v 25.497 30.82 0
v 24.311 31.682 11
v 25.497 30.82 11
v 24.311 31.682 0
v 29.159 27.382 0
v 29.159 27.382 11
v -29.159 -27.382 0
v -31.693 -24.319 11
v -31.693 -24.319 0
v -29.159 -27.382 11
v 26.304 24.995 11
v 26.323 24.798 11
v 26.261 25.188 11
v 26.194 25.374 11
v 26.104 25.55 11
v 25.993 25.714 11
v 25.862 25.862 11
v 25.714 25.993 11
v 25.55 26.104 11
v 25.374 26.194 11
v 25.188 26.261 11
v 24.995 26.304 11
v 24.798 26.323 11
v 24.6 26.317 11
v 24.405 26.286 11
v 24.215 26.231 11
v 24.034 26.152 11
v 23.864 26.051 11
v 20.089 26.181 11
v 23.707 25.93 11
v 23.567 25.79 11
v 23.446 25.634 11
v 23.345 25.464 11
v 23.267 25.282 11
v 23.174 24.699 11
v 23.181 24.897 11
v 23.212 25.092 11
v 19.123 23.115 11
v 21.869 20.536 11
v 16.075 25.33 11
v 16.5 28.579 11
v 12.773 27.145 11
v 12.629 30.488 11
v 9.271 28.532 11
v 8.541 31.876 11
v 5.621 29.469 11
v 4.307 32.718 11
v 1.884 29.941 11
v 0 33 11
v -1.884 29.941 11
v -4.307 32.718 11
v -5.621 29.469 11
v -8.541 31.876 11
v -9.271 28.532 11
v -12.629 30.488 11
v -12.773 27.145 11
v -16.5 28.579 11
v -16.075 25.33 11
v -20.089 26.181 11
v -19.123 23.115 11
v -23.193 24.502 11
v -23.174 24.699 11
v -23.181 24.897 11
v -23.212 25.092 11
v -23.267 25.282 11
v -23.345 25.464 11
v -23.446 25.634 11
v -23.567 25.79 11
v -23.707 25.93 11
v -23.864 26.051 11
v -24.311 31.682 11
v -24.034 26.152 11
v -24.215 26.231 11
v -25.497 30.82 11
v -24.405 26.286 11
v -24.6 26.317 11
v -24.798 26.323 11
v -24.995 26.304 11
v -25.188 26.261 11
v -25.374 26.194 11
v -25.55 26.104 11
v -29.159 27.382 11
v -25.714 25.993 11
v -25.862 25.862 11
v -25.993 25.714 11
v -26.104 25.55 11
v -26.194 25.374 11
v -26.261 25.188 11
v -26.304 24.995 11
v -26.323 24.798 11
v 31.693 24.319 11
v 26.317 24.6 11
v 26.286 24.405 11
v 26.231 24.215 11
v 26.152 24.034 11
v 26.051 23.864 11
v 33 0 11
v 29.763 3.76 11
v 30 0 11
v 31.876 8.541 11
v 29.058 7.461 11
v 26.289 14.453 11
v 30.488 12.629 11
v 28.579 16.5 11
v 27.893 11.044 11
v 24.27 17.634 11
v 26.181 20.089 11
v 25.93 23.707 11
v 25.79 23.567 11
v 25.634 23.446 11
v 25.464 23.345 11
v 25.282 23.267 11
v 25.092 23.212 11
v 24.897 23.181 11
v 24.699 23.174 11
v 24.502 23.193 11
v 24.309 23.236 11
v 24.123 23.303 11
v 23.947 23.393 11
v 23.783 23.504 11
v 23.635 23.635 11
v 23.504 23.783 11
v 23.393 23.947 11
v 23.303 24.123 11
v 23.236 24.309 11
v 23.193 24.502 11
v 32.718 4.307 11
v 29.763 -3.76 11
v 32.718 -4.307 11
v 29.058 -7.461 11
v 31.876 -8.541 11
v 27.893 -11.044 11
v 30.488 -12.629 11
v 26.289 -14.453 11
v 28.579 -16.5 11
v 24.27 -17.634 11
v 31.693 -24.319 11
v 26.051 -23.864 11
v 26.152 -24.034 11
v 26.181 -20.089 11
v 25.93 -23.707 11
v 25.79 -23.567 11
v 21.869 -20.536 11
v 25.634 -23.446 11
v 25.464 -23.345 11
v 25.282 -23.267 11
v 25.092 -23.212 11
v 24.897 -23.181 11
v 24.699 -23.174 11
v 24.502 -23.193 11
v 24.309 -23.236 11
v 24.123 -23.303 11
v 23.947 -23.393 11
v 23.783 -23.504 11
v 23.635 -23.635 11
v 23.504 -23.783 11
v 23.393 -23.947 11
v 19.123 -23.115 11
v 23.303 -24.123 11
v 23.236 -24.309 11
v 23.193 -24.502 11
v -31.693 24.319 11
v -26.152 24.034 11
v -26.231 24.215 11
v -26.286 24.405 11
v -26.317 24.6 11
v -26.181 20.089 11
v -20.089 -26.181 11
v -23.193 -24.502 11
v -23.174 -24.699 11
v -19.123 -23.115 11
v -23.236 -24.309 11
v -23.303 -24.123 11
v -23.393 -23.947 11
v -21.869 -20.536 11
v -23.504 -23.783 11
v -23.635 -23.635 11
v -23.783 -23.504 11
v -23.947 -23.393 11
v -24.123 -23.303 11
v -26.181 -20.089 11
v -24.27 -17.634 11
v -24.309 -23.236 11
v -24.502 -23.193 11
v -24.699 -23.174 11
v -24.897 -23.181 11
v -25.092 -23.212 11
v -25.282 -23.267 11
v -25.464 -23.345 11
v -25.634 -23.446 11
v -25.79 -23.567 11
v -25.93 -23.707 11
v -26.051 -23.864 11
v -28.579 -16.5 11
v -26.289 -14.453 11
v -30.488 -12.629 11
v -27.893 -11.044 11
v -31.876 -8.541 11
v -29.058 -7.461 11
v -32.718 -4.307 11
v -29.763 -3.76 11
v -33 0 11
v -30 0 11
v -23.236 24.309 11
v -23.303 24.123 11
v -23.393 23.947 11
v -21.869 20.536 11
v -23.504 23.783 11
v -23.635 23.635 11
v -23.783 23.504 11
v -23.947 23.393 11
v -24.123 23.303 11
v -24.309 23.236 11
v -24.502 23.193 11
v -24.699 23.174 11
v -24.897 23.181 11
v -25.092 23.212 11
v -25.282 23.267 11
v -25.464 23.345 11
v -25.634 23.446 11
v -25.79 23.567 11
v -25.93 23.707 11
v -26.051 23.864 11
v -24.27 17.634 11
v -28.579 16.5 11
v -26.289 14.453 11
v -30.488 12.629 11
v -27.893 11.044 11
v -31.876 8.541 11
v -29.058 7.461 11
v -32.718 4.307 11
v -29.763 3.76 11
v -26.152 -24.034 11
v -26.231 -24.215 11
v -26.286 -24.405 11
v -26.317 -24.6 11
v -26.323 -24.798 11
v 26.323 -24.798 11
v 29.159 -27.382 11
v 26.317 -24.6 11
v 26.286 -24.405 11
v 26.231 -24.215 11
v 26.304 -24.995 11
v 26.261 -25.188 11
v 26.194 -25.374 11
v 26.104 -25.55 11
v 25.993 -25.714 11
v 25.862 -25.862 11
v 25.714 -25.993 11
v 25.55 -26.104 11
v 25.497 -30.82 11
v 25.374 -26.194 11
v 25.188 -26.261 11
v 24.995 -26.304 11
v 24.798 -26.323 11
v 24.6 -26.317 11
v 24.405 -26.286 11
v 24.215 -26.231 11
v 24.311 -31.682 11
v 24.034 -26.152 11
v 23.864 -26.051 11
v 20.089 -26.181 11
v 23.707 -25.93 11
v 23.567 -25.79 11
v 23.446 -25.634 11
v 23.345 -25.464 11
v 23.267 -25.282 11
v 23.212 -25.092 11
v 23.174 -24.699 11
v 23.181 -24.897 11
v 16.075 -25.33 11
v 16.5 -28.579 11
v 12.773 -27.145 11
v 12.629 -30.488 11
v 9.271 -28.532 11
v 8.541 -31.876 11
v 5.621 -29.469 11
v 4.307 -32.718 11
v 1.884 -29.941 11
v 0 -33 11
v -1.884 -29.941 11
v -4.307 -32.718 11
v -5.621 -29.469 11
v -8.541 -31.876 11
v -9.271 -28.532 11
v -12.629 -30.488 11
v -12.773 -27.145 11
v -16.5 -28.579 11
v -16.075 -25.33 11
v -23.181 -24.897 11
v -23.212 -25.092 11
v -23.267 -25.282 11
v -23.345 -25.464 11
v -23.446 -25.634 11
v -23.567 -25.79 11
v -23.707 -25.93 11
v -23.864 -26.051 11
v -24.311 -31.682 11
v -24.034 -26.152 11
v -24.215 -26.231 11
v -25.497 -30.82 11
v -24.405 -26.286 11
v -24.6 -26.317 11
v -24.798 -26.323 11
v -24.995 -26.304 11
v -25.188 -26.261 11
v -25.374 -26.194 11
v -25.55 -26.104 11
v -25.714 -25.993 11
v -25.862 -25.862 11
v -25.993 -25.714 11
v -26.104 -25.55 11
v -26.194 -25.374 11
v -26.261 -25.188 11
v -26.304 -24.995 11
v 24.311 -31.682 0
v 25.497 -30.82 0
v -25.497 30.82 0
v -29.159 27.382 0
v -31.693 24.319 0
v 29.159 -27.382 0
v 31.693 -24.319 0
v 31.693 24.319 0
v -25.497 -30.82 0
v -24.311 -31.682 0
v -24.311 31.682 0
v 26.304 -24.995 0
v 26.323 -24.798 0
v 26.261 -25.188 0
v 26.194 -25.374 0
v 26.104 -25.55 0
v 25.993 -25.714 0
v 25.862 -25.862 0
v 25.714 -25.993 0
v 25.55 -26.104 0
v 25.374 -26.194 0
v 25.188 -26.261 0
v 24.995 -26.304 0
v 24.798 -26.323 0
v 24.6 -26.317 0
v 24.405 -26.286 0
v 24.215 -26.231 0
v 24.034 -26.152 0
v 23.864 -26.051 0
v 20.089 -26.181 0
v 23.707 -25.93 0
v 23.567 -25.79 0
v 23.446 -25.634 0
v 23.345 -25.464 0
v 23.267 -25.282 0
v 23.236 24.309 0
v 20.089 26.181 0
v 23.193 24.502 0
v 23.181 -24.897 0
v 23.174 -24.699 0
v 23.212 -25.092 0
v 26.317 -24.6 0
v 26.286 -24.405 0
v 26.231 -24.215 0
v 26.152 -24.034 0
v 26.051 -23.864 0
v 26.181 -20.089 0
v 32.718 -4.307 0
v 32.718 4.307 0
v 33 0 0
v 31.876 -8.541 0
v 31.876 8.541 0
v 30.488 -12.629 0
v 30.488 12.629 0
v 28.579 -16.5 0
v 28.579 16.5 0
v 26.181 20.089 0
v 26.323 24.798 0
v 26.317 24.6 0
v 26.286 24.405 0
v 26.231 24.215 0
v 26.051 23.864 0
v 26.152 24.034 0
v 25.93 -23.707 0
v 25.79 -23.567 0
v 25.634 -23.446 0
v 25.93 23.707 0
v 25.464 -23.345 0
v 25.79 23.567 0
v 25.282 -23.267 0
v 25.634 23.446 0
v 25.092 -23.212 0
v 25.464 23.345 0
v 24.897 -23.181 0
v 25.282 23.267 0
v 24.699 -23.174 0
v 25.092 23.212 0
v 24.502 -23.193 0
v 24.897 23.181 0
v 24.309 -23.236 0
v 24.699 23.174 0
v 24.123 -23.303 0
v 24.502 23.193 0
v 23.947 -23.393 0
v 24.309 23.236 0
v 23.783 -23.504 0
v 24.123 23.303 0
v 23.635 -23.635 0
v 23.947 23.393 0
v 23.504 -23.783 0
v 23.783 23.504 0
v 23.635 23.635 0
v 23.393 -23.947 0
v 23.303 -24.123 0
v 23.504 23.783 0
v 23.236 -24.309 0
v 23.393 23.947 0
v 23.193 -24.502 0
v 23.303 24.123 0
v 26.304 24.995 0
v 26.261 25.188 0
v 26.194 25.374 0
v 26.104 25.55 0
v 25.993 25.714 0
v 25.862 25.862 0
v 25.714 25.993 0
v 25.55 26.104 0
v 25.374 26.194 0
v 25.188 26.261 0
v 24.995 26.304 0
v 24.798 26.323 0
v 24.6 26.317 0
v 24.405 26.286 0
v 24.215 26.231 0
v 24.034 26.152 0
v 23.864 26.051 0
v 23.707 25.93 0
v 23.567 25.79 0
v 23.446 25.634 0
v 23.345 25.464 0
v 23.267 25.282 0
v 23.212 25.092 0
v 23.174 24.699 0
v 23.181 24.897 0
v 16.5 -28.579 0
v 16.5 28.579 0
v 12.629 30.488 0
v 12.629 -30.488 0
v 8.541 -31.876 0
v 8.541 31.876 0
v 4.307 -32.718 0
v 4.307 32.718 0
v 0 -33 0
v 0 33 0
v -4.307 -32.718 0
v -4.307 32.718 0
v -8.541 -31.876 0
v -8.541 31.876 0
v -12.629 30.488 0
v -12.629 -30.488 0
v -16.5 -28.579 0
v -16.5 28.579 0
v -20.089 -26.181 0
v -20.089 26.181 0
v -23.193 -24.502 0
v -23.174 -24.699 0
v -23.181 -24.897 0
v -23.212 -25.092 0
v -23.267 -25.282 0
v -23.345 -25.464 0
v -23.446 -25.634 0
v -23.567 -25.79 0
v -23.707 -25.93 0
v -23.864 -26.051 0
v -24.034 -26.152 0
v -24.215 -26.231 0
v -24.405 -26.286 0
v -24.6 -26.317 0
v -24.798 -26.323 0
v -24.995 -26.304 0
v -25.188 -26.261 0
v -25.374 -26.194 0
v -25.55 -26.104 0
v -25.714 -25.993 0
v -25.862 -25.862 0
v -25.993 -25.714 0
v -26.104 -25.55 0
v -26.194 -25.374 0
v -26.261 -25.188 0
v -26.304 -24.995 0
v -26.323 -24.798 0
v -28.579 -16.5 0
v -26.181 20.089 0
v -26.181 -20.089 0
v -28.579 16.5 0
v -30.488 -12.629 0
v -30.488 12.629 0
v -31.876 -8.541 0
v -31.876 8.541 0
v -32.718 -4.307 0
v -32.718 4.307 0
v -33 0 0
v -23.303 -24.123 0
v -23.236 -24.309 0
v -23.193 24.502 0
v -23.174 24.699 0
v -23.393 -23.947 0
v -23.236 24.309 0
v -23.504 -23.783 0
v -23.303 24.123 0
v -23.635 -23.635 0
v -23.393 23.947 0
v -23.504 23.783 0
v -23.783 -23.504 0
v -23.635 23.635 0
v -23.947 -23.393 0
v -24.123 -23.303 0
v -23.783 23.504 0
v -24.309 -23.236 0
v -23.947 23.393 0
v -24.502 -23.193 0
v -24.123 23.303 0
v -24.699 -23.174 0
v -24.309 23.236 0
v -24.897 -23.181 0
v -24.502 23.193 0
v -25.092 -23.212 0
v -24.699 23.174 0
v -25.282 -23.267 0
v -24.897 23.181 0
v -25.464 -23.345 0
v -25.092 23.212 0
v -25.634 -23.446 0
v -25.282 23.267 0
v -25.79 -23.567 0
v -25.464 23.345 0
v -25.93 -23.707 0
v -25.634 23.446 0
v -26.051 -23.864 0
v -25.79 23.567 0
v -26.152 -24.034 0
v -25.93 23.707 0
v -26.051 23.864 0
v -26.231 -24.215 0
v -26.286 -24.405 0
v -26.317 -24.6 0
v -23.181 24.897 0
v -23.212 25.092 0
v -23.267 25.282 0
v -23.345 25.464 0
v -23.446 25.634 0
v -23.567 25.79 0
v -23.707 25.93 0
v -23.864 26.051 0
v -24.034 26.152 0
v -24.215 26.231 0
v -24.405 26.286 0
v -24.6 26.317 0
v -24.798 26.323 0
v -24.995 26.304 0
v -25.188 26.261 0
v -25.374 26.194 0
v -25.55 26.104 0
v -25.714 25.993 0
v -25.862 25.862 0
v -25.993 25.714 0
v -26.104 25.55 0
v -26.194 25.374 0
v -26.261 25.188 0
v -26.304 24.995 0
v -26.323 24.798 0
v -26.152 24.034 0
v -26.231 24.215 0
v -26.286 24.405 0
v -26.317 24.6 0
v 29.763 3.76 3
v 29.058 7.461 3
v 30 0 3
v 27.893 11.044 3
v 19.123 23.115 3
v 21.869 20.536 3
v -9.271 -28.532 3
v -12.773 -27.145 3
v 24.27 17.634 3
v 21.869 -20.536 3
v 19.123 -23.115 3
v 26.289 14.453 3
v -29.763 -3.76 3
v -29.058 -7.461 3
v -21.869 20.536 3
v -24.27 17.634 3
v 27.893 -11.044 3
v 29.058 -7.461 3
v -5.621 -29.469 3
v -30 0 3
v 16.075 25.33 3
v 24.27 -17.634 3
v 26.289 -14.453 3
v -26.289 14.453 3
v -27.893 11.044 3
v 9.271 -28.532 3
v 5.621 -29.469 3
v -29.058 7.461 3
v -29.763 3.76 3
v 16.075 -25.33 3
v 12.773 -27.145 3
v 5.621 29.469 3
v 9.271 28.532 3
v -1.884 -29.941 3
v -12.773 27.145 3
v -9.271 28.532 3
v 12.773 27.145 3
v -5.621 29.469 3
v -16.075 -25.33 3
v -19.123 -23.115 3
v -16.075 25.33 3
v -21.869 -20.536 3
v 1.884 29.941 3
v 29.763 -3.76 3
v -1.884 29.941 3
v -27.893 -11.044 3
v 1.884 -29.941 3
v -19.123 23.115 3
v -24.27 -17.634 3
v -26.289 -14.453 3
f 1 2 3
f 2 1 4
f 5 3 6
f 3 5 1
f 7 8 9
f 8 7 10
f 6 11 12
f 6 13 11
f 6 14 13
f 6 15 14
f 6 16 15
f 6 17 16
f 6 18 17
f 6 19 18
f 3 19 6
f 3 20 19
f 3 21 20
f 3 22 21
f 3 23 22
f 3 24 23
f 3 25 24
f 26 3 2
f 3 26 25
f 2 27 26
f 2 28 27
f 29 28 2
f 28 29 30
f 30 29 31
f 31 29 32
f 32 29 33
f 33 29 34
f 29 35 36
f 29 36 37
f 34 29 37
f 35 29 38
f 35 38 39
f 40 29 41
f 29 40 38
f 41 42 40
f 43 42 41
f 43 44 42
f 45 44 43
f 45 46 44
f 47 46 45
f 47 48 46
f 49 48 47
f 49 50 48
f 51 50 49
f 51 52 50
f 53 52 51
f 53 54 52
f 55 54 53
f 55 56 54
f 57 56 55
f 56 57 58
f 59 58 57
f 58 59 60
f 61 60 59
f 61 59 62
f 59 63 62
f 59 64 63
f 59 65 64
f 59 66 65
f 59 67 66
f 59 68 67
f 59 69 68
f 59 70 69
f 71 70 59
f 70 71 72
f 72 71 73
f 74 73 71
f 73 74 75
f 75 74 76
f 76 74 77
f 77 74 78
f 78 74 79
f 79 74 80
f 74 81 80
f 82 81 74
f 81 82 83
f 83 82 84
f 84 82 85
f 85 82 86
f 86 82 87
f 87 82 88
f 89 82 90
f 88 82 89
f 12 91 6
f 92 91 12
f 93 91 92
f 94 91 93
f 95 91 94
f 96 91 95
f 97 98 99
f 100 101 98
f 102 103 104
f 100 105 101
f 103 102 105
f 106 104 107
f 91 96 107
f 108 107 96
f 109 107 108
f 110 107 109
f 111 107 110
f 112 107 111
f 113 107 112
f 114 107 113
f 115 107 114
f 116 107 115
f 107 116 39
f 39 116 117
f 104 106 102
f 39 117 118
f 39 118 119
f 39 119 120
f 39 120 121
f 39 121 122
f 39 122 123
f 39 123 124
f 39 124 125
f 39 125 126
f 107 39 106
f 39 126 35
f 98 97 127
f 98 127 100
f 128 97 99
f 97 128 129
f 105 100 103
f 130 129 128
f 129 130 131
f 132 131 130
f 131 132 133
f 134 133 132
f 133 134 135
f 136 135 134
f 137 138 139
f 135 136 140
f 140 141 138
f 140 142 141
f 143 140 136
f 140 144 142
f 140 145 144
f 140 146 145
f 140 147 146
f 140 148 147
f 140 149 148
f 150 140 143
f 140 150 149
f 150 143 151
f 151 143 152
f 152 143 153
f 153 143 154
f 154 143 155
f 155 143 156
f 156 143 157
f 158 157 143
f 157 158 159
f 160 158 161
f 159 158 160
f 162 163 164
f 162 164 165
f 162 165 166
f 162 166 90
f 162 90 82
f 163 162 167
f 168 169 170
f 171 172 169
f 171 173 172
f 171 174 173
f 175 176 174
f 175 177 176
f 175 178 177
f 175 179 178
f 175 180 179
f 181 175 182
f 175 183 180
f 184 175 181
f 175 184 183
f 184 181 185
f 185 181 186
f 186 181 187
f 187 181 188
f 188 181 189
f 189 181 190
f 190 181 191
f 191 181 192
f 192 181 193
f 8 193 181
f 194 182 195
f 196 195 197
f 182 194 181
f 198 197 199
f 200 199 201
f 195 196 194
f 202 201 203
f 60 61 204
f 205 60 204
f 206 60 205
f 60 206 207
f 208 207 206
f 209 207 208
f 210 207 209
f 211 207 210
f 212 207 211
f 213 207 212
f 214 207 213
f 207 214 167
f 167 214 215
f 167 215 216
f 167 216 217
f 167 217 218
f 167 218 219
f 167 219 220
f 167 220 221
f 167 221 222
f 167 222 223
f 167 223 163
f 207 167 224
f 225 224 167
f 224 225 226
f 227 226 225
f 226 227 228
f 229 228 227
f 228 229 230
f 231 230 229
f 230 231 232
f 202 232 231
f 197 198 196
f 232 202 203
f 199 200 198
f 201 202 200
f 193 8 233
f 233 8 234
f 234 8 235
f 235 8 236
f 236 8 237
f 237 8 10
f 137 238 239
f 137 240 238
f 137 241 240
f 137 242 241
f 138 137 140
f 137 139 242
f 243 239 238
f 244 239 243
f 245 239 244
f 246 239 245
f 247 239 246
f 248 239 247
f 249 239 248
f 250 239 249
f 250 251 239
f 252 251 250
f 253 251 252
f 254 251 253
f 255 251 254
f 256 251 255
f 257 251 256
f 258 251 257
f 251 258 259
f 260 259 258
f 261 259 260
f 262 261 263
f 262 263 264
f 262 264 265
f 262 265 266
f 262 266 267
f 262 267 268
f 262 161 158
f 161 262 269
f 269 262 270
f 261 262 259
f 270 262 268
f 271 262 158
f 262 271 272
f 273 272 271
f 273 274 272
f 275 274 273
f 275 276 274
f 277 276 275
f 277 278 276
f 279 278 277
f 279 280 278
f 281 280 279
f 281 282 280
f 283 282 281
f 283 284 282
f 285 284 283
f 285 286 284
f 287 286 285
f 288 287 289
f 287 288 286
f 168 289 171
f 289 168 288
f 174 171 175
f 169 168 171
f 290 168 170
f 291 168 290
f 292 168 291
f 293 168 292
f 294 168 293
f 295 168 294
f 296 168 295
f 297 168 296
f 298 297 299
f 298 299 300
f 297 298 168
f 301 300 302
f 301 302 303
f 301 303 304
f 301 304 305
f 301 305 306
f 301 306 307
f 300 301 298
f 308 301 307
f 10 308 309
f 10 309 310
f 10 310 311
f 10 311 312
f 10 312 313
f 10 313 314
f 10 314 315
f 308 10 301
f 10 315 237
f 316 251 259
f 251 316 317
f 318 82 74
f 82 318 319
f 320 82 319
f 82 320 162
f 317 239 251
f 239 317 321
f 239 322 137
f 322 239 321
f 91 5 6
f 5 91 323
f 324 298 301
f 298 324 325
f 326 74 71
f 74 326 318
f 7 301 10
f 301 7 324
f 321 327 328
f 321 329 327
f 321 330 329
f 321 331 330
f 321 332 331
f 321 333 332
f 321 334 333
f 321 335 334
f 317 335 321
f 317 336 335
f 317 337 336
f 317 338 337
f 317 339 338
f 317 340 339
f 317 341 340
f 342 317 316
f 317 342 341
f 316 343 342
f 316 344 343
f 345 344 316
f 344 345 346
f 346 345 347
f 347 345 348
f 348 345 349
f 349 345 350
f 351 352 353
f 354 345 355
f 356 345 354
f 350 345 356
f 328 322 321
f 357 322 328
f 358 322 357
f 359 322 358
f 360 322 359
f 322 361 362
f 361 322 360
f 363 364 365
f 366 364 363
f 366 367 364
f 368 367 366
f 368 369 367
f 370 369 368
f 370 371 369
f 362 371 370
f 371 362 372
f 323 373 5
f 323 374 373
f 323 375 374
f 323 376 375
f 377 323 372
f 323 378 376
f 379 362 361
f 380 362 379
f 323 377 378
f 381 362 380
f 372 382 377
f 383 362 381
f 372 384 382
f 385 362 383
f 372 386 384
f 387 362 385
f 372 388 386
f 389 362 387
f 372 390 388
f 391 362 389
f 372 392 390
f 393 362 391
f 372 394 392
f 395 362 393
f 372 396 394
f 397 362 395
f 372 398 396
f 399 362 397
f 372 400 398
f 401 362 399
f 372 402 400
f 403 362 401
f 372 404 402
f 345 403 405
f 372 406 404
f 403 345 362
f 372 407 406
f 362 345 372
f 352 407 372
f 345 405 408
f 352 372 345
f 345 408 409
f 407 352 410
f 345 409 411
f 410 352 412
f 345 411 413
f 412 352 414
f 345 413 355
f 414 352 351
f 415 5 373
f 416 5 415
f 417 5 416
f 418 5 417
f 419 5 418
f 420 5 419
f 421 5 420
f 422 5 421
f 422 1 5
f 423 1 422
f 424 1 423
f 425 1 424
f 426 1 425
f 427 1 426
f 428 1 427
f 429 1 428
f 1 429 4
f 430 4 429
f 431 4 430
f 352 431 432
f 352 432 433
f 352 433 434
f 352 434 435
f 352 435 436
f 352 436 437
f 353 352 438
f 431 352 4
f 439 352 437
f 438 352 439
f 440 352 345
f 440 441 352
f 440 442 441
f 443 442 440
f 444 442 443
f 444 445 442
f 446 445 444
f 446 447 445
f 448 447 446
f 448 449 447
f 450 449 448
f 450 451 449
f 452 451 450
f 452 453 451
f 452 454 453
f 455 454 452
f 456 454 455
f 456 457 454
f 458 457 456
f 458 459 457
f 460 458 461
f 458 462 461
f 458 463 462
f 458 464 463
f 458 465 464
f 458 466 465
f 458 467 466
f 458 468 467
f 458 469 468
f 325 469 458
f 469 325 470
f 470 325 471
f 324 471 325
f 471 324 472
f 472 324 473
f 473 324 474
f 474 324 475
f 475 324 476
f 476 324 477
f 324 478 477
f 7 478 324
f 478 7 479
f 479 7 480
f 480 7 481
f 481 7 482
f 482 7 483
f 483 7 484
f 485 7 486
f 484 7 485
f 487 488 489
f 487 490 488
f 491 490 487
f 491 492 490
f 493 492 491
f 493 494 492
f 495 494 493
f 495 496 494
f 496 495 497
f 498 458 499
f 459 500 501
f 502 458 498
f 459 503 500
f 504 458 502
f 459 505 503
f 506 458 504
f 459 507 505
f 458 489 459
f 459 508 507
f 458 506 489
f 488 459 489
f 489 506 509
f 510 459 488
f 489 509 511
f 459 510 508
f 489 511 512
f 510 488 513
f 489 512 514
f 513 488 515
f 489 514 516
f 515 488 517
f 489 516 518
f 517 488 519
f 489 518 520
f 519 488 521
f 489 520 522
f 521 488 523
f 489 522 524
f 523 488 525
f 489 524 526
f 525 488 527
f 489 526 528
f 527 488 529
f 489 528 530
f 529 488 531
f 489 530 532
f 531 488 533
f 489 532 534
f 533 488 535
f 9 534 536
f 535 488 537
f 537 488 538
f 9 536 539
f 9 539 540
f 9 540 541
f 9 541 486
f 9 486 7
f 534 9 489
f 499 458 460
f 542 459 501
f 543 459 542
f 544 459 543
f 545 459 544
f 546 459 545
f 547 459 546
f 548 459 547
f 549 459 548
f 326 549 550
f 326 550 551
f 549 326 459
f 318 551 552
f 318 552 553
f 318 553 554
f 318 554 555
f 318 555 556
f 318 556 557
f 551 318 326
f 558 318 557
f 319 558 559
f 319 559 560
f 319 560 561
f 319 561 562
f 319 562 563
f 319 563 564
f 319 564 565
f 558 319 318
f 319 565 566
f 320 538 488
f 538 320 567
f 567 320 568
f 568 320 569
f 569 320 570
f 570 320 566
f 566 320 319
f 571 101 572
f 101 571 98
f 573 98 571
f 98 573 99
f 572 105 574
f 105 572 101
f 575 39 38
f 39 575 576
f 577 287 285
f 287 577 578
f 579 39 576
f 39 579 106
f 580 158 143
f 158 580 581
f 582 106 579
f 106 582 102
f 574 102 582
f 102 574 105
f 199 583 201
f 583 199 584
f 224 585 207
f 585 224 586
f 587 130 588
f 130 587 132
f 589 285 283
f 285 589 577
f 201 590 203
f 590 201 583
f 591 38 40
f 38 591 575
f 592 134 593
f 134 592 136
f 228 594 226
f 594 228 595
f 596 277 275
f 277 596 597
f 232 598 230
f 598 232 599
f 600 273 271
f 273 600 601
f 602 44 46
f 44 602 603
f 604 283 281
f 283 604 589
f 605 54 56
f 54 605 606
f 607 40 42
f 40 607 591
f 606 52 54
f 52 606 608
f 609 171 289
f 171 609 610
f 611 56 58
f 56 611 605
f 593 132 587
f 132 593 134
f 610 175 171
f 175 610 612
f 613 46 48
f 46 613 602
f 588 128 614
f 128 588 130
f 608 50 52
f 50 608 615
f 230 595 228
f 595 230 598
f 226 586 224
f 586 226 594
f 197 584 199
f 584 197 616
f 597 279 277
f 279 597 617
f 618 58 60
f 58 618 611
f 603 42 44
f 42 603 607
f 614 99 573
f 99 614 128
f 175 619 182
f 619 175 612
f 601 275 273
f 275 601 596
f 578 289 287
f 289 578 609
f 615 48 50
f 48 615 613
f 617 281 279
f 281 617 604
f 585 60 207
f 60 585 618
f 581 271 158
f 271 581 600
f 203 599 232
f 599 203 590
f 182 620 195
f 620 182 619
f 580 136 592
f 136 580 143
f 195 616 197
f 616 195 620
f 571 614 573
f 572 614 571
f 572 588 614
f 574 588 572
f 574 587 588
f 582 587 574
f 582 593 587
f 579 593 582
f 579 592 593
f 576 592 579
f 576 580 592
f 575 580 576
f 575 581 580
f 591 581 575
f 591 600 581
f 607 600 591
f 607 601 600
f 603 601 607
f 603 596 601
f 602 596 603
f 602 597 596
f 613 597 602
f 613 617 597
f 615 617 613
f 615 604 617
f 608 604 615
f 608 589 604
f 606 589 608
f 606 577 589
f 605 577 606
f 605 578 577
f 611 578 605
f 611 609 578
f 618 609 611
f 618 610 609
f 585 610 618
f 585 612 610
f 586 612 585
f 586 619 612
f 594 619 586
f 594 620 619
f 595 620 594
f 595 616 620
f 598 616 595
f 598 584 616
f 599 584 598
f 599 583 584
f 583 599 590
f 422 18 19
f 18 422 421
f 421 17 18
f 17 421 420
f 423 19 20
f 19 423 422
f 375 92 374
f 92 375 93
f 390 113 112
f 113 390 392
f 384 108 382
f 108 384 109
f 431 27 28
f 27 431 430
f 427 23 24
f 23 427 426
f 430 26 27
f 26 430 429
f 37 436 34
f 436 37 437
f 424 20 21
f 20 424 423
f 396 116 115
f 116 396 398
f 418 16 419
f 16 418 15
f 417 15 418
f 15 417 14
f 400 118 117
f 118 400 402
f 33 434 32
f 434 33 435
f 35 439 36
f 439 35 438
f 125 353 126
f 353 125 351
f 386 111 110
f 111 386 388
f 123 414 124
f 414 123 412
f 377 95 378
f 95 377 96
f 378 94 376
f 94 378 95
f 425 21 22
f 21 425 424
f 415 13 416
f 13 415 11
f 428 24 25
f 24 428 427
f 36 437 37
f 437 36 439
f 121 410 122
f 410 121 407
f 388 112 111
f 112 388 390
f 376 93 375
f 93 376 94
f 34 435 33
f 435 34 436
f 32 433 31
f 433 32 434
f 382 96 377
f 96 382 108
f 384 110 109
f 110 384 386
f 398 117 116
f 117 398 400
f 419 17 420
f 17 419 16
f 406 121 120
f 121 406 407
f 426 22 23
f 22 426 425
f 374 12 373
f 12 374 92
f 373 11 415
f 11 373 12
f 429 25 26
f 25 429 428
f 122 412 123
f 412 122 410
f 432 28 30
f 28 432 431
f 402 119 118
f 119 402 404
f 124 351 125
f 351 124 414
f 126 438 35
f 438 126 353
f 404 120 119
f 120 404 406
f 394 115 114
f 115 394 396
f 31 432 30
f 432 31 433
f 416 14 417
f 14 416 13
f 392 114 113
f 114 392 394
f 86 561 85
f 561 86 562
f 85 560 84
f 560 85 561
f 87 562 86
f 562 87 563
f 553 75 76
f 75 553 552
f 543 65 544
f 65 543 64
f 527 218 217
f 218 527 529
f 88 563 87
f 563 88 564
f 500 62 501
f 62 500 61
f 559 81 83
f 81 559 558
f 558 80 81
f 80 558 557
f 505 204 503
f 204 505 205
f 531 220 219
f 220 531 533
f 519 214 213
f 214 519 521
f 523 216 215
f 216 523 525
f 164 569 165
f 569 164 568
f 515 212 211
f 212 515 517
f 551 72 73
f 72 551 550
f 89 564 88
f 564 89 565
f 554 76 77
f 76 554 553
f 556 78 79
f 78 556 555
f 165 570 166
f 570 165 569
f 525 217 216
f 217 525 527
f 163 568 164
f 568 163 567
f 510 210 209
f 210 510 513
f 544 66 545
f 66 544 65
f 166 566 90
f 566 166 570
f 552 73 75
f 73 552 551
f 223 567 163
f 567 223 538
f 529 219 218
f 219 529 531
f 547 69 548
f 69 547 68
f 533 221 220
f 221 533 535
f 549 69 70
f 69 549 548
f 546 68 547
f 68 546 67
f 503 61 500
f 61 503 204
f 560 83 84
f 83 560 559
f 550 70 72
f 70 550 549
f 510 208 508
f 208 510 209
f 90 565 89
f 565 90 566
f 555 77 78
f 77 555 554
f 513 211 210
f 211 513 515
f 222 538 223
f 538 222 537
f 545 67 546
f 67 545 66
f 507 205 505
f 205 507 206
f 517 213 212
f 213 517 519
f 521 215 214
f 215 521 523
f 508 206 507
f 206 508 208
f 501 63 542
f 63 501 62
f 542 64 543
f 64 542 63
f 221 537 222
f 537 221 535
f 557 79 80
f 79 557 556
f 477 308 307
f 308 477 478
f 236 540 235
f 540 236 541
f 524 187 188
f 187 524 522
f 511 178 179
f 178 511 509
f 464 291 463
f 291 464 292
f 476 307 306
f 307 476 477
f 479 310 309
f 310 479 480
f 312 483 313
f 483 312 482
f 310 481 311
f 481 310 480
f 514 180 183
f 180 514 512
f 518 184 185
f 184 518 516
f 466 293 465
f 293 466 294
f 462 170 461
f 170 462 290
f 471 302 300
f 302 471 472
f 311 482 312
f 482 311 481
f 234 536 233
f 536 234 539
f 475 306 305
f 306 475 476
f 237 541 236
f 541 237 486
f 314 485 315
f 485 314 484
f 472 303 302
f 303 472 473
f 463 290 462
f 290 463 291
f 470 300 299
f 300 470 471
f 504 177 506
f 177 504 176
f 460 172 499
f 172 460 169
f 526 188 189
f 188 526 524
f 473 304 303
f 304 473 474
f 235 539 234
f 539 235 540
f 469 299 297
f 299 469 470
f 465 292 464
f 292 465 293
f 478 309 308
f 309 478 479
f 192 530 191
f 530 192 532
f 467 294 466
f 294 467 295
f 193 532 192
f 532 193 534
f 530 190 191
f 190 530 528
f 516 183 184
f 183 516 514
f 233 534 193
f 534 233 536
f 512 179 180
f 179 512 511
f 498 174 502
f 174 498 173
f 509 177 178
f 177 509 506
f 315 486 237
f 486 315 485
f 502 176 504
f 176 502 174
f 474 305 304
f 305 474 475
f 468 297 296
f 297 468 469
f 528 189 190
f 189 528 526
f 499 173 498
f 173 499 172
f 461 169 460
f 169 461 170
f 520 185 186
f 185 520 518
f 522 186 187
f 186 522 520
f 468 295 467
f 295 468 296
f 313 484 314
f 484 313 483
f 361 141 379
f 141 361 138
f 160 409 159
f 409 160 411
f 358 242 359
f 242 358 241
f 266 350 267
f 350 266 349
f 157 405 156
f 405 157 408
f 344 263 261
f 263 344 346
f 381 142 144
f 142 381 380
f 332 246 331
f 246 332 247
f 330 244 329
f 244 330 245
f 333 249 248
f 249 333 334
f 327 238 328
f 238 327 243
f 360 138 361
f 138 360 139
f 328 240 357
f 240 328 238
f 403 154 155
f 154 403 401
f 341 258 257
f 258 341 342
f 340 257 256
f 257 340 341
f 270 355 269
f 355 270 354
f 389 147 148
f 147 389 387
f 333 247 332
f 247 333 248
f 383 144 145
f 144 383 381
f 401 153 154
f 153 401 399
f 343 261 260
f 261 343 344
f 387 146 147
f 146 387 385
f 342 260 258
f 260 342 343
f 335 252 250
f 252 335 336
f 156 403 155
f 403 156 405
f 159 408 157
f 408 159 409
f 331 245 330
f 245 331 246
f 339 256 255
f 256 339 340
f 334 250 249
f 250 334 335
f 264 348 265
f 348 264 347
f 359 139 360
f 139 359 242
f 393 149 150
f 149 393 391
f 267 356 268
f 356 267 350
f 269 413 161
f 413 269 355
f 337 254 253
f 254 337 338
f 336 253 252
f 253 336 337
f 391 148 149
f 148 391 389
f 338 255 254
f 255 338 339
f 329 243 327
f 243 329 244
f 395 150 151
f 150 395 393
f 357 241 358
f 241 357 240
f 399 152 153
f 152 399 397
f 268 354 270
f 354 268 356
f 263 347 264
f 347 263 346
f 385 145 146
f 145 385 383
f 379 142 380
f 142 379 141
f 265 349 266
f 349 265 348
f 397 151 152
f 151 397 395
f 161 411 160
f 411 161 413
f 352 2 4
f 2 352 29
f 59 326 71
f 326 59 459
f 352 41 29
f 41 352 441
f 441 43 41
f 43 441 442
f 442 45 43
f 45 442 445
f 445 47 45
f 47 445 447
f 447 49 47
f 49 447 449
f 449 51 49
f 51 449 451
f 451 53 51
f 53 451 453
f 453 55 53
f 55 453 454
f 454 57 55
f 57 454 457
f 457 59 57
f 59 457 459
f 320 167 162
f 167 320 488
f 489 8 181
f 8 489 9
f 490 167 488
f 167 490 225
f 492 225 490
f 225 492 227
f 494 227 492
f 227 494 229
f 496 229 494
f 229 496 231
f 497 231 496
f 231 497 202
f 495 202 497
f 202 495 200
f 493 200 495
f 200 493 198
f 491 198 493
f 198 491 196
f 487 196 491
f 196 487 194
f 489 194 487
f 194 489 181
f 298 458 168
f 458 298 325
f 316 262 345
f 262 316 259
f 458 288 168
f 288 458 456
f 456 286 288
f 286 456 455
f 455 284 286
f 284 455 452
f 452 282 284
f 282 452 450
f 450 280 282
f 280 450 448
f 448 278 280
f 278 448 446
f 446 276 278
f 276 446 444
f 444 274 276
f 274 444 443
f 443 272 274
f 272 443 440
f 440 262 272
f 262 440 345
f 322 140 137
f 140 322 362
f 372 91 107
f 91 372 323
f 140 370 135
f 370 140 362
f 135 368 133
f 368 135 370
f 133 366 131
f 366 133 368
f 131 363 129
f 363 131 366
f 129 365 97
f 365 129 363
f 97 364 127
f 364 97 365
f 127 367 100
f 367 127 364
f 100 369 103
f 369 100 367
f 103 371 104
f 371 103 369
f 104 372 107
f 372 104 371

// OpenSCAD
//------------------------------------------------
// 2 - Turnstile Antenna head - Cap
//
// author: Alessandro Paganelli, Alberto Trentadue 
// e-mail: alessandro.paganelli@gmail.com
// github: https://github.com/allep
// license: GPL-3.0-or-later
// 
// Description
// This is overhead cap to protect electrical connections
//
// All sizes are expressed in mm.
//------------------------------------------------

// Set face number to a sufficiently high number.
$fn = 50;

//------------------------------------------------
// Debug mode
// Set DEBUG_MODE to 1 to simulate the actual 
// screw positions, to validate the design.
DEBUG_MODE = 0;

//------------------------------------------------
// Variables

// Screws
// M3 screws - 1.5 + 5% tolerance
SCREW_RADIUS = 1.575;
SCREW_DEPTH = 12.0;

// Body
CYLINDER_RADIUS_INNER = 30.0;
CYLINDER_SIDE_MAX_THICKNESS = 10.0;
CYLINDER_SIDE_MIN_THICKNESS = 3.0;
CYLINDER_INNER_HEIGHT = 8.0;
CYLINDER_BASE_THICKNESS = 3.0;

// Taken from 01_head.scad
ANTENNA_ELEMENT_SIDE_DISPLACEMENT = 12.5;


//------------------------------------------------
// Modules

module cylinder_body(inner_radius, side_thickness, inner_height, base_thickness) {
    HOLE_VIS_CRR = 1;
    outer_radius = inner_radius + side_thickness;
    outer_height = inner_height + base_thickness;
    difference() {
        cylinder(h = outer_height, r = outer_radius);
        translate([0, 0, base_thickness])
        cylinder(h = inner_height + HOLE_VIS_CRR, r = inner_radius);
    }
}


// To be subtracted from the assembly
module screw_holes(screw_radius, screw_depth, body_displacement) {
    // main body screw holes
    HOLE_VIS_CRR = 1;
    crr_screw_depth = screw_depth + HOLE_VIS_CRR;
    
    rotate([0, 0, 45])
    translate([body_displacement, 0, crr_screw_depth/2])
    cylinder(h = crr_screw_depth, r = screw_radius, center = true);
    
    rotate([0, 0, 135])
    translate([body_displacement, 0, crr_screw_depth/2])
    cylinder(h = crr_screw_depth, r = screw_radius, center = true);
    
    rotate([0, 0, 225])
    translate([body_displacement, 0, crr_screw_depth/2])
    cylinder(h = crr_screw_depth, r = screw_radius, center = true);
    
    rotate([0, 0, 315])
    translate([body_displacement, 0, crr_screw_depth/2])
    cylinder(h = crr_screw_depth, r = screw_radius, center = true);
    
}

// Single side reduction
module side_redux(redux_angle, rot_angle) {
    
    VIS_CRR = 1; //Visualization correction

    XP = CYLINDER_SIDE_MAX_THICKNESS-CYLINDER_SIDE_MIN_THICKNESS+VIS_CRR;
    YP = CYLINDER_INNER_HEIGHT+CYLINDER_BASE_THICKNESS+VIS_CRR;
    P1 = [XP,YP];
    P2 = [XP,0];
    P3 = [0,YP];
    
    translate([0,0,-VIS_CRR/2])
    rotate([0,0,rot_angle])
    rotate_extrude(convexity = 10, angle=redux_angle)
    translate([CYLINDER_RADIUS_INNER+CYLINDER_SIDE_MIN_THICKNESS, 0, 0])
    polygon(points=[P1,P2,[0,0],P3]);
}

// All side reductions to be subtracted from assembly
module all_sides_redux() {
    
    REDUX_ANGLE = 75;
    START_ANGLE = 90-REDUX_ANGLE/2;
    side_redux(REDUX_ANGLE, START_ANGLE);
    side_redux(REDUX_ANGLE, START_ANGLE + 90);
    side_redux(REDUX_ANGLE, START_ANGLE + 180);
    side_redux(REDUX_ANGLE, START_ANGLE + 270);
}

//------------------------------------------------
// Actual script

if (DEBUG_MODE == 0) {
    // release mode
    difference() {

        cylinder_body(CYLINDER_RADIUS_INNER, CYLINDER_SIDE_MAX_THICKNESS, CYLINDER_INNER_HEIGHT, CYLINDER_BASE_THICKNESS);

        translate([0, 0, CYLINDER_BASE_THICKNESS + CYLINDER_INNER_HEIGHT - SCREW_DEPTH])
        screw_holes(SCREW_RADIUS, SCREW_DEPTH, CYLINDER_RADIUS_INNER + CYLINDER_SIDE_MAX_THICKNESS/2);
        all_sides_redux();
    }
}
else {
    // debug mode
    // IF NEEDED
    all_side_redux();
}
